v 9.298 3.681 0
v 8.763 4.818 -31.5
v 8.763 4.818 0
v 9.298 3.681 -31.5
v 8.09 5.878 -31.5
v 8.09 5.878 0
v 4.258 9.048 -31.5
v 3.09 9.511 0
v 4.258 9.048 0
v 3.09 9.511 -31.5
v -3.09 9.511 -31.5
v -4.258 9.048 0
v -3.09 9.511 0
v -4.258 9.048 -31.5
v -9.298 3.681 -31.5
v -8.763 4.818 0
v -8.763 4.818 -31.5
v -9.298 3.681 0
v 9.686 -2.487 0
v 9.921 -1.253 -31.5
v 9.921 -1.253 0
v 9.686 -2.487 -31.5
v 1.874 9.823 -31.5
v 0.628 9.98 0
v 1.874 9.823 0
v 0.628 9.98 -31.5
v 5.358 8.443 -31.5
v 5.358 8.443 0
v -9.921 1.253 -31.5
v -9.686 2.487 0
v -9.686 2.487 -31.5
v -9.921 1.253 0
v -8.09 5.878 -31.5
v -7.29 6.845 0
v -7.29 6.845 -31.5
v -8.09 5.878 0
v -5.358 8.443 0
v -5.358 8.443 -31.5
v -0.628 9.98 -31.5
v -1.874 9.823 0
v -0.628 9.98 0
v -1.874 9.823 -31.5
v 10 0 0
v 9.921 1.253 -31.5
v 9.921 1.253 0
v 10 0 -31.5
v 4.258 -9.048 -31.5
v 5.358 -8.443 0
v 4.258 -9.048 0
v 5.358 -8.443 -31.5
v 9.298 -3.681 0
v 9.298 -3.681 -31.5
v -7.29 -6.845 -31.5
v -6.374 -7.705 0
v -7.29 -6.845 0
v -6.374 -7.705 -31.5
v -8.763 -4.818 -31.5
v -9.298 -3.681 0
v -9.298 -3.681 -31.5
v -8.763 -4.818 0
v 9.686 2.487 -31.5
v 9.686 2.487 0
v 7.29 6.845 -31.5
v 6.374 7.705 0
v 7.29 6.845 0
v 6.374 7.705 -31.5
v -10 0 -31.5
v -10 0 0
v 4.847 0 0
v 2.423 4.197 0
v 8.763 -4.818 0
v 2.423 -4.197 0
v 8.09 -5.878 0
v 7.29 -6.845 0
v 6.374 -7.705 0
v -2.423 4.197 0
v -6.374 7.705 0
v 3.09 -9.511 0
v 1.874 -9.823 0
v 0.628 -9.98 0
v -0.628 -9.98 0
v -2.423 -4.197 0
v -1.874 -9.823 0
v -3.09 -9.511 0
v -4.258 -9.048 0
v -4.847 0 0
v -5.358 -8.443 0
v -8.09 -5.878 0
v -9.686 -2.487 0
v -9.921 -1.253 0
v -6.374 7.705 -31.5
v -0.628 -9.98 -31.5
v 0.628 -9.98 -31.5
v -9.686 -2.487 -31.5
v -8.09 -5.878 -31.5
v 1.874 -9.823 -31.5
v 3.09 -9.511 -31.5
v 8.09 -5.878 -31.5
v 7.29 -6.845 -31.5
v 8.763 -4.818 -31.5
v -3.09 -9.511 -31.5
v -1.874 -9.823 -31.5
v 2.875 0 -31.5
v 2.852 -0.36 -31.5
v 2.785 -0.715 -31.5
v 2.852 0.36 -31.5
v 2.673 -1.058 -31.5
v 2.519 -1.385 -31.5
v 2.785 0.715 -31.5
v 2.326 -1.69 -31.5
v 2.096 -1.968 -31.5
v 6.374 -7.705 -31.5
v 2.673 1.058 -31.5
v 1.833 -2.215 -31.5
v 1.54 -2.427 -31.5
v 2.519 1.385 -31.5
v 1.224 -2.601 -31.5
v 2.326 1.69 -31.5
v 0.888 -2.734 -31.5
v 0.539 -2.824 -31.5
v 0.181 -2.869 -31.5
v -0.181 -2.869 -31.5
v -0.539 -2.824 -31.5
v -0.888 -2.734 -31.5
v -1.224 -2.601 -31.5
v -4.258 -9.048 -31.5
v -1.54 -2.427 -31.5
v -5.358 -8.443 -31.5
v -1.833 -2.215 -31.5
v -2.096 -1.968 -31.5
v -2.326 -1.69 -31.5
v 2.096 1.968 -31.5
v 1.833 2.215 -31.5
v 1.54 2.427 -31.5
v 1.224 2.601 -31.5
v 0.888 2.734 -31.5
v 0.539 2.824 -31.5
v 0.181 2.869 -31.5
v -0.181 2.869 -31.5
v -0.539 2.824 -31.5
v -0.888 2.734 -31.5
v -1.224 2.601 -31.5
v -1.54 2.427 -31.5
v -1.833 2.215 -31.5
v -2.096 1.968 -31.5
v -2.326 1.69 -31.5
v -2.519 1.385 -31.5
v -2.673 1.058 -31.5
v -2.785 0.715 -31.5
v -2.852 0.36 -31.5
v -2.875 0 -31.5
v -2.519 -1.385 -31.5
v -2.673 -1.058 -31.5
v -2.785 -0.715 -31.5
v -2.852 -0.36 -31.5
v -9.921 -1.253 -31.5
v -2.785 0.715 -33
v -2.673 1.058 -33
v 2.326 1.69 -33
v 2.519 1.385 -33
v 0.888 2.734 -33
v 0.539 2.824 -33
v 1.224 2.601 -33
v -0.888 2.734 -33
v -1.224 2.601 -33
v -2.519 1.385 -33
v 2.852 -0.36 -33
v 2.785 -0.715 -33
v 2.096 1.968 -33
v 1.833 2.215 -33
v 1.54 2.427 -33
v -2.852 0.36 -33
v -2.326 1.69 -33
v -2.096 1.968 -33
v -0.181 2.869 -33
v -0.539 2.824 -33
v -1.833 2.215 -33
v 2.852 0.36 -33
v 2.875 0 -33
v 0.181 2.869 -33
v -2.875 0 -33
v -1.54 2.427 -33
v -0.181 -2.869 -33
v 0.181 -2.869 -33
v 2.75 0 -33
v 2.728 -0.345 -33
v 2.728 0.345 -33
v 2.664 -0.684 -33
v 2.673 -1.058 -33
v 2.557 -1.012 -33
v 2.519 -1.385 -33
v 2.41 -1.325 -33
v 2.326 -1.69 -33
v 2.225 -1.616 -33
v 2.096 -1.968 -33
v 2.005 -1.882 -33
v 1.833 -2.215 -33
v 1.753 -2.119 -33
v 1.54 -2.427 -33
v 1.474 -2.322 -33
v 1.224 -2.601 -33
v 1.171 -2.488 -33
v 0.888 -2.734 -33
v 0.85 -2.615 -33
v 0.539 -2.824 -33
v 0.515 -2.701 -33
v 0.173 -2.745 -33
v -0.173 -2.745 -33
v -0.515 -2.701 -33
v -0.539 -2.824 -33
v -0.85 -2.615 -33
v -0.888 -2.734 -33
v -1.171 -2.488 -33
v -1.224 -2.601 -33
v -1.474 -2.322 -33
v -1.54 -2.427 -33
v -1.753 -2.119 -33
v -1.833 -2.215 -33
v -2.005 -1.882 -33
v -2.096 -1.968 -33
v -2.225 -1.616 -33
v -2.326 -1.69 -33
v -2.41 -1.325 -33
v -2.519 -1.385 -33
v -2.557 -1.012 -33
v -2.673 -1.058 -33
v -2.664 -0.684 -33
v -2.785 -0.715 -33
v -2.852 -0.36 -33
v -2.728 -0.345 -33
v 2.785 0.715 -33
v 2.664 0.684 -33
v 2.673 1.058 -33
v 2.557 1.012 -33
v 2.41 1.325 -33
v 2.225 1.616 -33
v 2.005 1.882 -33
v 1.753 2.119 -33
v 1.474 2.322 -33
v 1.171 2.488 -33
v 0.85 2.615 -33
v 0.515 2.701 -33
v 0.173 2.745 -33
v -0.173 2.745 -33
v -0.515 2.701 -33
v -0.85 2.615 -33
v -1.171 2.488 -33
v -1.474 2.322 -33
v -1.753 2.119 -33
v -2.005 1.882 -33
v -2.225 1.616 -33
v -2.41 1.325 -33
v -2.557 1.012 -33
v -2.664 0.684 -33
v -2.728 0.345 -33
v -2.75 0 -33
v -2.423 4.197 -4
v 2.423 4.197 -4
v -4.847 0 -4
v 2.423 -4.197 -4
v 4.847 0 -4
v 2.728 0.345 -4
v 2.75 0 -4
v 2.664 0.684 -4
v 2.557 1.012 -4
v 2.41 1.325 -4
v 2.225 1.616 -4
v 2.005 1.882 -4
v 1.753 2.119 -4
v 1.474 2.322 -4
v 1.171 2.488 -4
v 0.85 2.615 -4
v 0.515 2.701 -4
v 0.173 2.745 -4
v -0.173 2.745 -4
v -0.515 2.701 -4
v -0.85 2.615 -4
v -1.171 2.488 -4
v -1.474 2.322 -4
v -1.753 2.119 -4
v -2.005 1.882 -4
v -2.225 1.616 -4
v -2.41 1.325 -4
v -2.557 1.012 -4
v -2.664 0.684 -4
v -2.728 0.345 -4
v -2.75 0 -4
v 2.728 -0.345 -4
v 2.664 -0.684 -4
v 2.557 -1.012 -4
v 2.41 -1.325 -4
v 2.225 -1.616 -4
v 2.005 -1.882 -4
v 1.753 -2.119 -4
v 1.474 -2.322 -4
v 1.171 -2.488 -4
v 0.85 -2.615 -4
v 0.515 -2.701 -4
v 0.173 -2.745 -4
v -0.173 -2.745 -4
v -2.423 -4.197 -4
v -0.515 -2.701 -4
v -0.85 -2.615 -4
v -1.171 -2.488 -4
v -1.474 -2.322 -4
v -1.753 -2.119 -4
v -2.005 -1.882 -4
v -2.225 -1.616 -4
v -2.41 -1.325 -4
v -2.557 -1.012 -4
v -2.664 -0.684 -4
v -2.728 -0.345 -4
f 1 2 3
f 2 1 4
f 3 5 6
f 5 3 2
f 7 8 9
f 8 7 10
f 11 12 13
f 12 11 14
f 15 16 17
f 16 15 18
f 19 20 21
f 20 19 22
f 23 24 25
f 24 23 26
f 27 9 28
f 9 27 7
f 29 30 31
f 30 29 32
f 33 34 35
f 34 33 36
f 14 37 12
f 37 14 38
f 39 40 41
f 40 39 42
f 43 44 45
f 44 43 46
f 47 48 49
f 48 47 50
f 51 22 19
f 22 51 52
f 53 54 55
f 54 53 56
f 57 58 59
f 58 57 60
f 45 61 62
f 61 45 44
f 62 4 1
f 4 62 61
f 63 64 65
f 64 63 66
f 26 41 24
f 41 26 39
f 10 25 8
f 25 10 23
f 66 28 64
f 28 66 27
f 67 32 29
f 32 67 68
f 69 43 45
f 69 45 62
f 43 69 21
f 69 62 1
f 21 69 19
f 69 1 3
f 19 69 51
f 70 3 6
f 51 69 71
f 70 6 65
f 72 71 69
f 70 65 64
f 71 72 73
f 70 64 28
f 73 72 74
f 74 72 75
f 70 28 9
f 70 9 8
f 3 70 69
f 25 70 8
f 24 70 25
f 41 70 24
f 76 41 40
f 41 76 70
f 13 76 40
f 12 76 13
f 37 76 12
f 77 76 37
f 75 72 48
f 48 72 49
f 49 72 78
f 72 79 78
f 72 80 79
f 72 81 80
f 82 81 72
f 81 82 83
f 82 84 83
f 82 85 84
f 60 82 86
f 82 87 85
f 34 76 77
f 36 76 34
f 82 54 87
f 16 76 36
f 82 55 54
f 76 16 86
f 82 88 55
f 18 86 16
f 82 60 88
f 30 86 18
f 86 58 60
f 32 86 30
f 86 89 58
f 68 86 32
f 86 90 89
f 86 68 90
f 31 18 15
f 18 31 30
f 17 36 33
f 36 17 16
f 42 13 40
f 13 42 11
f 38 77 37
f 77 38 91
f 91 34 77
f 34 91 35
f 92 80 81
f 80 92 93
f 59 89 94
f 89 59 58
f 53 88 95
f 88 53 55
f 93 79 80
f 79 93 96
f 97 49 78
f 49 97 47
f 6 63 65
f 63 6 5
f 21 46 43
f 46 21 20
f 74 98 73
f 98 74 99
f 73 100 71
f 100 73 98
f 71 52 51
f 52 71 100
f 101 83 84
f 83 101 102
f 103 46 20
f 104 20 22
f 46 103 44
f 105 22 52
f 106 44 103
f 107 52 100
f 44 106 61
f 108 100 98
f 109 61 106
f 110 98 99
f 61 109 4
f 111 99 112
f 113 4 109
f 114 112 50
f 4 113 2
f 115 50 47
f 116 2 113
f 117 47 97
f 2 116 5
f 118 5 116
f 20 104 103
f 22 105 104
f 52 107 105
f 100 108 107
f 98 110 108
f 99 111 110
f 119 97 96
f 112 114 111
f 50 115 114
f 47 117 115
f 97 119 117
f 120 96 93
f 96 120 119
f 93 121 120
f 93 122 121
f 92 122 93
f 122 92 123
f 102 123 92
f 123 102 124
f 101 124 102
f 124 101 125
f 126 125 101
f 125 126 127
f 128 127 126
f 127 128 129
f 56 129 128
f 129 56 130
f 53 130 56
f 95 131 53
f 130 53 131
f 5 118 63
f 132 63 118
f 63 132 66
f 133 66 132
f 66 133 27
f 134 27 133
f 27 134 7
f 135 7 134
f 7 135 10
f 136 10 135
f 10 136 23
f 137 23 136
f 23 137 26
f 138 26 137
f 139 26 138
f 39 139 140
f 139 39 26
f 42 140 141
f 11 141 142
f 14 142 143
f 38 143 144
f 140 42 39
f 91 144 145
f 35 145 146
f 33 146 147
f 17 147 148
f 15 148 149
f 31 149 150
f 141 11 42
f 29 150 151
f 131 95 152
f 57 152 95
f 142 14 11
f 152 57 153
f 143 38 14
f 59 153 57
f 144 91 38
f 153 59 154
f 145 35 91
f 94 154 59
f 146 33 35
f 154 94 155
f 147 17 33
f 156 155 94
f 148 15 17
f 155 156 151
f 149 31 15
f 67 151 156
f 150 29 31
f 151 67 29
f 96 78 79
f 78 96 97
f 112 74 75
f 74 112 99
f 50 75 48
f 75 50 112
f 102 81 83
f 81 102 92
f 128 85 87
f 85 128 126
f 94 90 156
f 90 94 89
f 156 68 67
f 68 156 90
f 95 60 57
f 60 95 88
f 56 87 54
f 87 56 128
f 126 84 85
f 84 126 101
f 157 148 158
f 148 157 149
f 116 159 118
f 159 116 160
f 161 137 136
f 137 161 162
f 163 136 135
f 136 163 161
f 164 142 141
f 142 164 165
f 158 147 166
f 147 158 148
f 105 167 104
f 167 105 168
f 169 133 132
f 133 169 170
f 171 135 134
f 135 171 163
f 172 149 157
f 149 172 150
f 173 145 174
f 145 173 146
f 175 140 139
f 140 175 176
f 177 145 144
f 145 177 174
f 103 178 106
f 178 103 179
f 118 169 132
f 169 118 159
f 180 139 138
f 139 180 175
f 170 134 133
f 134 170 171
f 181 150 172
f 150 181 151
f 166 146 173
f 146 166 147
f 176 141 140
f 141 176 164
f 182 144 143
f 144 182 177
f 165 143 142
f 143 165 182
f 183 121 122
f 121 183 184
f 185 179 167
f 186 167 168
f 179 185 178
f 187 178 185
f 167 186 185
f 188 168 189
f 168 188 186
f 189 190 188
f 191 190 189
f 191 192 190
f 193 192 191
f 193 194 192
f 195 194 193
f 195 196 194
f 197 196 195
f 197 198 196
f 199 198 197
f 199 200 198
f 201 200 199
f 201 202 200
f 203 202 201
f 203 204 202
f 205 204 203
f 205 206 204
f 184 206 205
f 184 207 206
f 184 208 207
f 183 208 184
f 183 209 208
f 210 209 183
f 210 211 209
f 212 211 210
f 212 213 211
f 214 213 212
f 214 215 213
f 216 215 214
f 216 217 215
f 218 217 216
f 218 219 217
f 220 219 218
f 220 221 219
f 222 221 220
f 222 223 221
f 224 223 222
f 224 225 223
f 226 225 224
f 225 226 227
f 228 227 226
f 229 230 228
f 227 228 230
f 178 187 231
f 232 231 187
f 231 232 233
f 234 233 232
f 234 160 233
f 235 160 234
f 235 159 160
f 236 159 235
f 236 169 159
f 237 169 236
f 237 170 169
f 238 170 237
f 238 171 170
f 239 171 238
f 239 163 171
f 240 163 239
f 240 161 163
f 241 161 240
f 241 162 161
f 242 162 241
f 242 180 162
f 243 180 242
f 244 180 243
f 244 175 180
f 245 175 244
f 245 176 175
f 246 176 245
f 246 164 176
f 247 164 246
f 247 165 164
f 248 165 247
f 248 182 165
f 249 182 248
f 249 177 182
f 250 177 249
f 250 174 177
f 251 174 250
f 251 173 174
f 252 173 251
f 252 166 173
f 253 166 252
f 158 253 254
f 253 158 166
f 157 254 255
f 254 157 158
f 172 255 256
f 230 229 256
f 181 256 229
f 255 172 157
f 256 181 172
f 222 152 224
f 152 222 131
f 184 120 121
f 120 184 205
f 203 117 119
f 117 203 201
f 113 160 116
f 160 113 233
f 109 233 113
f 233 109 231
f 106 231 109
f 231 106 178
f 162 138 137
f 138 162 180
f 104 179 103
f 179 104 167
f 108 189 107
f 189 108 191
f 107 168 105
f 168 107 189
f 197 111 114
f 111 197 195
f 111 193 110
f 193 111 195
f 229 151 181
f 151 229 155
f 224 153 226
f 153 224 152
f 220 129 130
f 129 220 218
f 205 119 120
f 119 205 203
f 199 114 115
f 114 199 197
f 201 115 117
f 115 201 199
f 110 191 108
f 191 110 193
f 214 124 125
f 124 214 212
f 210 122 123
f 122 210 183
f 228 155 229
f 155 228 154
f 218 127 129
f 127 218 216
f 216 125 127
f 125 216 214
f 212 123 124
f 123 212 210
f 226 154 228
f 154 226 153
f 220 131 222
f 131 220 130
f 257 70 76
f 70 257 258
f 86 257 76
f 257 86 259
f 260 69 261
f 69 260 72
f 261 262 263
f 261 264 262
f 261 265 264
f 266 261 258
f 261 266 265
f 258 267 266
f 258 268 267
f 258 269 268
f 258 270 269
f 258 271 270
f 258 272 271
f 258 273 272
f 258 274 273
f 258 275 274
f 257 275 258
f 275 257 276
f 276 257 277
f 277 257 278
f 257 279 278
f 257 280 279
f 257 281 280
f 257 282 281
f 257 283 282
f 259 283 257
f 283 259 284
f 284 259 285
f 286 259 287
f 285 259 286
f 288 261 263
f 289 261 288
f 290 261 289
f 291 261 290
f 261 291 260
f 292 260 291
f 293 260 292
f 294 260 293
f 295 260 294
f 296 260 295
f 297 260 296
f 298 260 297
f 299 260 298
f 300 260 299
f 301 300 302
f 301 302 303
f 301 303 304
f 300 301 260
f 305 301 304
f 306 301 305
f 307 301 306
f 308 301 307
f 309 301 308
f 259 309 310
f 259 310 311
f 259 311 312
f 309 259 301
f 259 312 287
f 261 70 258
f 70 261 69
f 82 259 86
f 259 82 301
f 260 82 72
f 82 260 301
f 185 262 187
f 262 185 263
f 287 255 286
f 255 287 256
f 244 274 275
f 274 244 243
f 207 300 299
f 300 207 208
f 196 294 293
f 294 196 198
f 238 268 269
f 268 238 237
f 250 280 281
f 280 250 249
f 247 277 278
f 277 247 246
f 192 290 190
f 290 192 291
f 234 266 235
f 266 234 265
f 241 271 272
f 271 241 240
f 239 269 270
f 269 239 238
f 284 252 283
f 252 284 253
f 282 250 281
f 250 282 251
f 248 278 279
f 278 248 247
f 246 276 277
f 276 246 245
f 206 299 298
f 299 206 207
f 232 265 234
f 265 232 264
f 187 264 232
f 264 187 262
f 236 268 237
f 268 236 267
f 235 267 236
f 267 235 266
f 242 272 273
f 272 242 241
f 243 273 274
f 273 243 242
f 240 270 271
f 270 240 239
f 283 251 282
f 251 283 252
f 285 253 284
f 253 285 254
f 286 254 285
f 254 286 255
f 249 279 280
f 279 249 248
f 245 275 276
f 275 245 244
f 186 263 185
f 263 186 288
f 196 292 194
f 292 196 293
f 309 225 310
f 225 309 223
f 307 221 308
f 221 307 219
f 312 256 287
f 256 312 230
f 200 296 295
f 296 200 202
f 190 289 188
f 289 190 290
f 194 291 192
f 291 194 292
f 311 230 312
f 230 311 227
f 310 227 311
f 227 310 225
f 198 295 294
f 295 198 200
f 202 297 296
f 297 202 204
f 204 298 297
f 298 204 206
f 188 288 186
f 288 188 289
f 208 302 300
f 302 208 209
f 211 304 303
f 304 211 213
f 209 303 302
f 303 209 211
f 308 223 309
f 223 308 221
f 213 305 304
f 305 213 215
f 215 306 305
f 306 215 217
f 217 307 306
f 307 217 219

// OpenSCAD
$fn = 50;

difference() {
	union() {
		translate(v = [0, 0, -31.5]) {
			cylinder(h = 31.5, r = 10.0);
		}
		#translate(v = [0, 0, -33.0]) {
			cylinder(h = 33, r = 2.875);
		}
	}
	union() {
		translate(v = [0, 0, 0]) {
			rotate(a = [0, 0, 0]) {
				difference() {
					union() {
						translate(v = [0, 0, -4]) {
							linear_extrude(height = 4) {
								polygon(points = [[4.8468, 0.0], [2.4234000000000004, 4.197451927062417], [-2.423399999999999, 4.197451927062417], [-4.8468, 5.935618106107392e-16], [-2.423400000000002, -4.197451927062416], [2.423399999999997, -4.197451927062419]]);
							}
						}
					}
					union();
				}
			}
		}
		#translate(v = [0, 0, -100.0]) {
			cylinder(h = 200, r = 2.75);
		}
	}
}
